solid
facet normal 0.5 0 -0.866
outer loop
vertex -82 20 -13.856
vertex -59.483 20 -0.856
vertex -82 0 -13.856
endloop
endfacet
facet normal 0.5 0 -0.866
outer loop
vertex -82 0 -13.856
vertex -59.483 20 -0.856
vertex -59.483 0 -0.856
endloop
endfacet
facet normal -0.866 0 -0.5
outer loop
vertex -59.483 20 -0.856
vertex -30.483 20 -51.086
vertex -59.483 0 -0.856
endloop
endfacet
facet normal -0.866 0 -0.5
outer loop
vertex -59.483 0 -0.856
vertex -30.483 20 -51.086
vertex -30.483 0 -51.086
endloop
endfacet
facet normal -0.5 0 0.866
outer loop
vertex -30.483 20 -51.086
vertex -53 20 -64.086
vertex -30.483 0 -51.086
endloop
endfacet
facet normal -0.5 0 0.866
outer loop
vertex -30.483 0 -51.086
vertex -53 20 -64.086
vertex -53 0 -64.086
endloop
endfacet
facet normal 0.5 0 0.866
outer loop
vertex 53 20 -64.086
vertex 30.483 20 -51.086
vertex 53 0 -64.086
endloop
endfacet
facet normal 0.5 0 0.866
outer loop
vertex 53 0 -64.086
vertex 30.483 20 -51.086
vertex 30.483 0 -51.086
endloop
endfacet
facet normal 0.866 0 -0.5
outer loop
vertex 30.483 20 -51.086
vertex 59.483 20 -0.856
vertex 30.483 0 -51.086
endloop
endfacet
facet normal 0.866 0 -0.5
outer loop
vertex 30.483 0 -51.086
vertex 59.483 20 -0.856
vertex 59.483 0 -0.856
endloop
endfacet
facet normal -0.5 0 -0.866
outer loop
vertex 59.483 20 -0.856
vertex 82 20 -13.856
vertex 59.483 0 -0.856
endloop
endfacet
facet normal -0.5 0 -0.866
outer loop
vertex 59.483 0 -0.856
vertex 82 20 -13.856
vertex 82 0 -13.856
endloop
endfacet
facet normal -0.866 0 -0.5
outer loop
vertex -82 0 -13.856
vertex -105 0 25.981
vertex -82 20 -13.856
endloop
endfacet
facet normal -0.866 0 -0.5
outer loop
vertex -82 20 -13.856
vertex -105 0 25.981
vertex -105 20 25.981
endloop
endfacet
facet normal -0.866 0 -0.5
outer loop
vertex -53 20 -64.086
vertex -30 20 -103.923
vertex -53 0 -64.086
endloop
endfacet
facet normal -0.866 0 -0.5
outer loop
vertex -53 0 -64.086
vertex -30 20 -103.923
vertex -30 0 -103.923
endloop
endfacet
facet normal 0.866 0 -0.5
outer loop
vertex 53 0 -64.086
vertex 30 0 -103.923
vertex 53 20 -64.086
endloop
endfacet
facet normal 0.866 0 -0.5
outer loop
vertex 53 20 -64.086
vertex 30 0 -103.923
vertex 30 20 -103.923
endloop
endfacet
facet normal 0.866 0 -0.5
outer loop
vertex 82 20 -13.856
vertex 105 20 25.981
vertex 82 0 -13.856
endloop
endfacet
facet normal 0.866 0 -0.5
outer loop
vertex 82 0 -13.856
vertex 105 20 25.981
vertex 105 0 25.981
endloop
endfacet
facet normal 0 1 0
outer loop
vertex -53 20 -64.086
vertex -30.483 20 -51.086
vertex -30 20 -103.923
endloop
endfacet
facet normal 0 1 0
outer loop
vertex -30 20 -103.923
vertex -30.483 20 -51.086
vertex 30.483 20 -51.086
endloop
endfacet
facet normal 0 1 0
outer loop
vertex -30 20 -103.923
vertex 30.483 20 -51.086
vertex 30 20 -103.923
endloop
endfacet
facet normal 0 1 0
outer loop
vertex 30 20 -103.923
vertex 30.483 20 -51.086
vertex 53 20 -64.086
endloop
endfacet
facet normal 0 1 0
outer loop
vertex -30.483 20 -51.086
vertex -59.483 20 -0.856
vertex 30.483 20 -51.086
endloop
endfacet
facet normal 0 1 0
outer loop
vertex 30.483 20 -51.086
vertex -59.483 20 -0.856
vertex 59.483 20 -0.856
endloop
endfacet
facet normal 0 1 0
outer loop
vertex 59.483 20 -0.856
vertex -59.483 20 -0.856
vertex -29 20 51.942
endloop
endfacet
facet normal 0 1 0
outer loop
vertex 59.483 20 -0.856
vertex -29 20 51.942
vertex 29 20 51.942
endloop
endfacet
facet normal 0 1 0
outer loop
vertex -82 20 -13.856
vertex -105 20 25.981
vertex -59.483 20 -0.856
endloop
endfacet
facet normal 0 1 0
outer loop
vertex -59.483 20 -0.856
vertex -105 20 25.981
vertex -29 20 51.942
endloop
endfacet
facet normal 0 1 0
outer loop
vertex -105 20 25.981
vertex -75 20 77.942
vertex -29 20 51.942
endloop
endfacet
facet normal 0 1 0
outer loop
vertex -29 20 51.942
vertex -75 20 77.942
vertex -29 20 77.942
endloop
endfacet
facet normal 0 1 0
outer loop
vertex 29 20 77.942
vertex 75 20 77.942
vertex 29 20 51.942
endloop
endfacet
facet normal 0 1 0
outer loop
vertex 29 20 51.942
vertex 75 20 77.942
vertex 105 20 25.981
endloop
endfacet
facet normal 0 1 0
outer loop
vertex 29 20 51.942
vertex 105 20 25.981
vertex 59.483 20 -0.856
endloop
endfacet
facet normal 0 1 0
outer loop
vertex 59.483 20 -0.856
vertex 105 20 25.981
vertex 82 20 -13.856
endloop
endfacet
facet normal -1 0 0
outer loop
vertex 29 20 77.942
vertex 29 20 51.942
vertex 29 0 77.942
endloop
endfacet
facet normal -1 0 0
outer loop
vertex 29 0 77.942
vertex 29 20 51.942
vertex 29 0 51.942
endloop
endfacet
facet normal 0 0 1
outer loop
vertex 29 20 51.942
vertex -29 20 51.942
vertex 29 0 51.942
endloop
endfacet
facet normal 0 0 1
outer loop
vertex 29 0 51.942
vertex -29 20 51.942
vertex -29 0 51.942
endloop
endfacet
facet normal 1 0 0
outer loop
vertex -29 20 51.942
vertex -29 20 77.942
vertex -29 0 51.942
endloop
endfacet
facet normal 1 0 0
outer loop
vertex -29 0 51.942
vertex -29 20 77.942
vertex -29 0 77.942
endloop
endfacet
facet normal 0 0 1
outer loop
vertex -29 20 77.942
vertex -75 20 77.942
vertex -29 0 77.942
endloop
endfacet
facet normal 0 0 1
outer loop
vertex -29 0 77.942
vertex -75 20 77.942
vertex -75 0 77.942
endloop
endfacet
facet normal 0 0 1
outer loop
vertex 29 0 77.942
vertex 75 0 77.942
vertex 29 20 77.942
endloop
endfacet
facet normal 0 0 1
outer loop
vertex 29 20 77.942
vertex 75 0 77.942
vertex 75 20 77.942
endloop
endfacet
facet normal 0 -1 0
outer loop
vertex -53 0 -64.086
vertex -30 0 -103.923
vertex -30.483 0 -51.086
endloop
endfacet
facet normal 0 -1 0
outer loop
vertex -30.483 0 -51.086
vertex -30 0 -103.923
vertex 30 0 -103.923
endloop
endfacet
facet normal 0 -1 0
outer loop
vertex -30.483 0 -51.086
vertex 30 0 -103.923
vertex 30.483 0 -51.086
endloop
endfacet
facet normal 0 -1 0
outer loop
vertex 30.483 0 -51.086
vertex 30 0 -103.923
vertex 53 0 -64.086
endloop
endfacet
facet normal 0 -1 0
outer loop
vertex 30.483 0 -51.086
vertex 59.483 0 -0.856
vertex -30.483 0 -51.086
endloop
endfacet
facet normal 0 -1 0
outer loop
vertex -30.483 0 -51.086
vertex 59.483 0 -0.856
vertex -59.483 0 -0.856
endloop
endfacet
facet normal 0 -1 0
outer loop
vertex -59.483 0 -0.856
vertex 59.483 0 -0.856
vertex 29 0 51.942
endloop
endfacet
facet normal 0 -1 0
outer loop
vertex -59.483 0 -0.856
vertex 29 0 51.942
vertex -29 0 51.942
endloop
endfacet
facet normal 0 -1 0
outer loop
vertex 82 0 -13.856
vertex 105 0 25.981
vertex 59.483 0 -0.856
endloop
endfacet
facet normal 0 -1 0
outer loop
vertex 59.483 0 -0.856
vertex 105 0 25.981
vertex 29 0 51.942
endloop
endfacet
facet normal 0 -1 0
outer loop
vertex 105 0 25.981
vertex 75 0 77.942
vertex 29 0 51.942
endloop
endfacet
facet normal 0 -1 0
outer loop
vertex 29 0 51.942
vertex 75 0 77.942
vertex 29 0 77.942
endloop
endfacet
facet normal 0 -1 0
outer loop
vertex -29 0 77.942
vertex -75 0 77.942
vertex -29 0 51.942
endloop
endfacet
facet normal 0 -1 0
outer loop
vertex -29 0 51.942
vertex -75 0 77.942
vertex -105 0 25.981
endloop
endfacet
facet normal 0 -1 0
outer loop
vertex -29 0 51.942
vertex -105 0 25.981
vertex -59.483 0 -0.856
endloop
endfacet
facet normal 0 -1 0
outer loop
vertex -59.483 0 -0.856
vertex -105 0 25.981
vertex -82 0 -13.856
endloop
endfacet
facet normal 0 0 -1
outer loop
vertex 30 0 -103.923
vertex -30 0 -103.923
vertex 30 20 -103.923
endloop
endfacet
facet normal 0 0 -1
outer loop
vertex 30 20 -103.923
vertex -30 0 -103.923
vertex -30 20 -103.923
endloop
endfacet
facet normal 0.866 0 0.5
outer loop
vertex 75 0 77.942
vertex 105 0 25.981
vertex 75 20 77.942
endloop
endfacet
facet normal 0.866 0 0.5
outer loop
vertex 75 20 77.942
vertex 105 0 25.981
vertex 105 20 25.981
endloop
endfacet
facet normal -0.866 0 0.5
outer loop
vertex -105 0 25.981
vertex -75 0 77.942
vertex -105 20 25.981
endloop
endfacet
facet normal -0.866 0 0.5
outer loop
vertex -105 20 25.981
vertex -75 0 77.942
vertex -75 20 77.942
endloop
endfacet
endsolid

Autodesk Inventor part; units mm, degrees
ref_plane "YZ Plane" through (0, 0, 0) normal (1, 0, 0) x (0, 1, 0)
ref_plane "XZ Plane" through (0, 0, 0) normal (0, 1, 0) x (-1, 0, 0)
ref_plane "XY Plane" through (0, 0, 0) normal (0, 0, 1) x (1, 0, 0)
sketch "スケッチ1" plane through (0, 0, 0) normal (0, 1, 0) x (-1, 0, 0)
  line L0 (135, 77.9423) -> (-135, 77.9423)
  line L1 (-135, 77.9423) -> (0, -155.8846)
  line L2 (0, -155.8846) -> (135, 77.9423)
  line L3 (135, 77.9423) -> (-67.5, -38.9711) construction
  line L4 (75, 77.9423) -> (105, 25.9808)
  line L5 (-105, 25.9808) -> (-75, 77.9423)
  line L6 (30, -103.923) -> (-30, -103.923)
  line L7 (77.8868, 82.9423) -> (0, 82.9423)
  line L8 (77.8868, 82.9423) -> (94.3301, 54.4615)
  line L9 (0, 0) -> (0, 82.9423) construction
  line L10 (-77.8868, 82.9423) -> (0, 82.9423)
  line L11 (-77.8868, 82.9423) -> (-94.3301, 54.4615)
  line L12 (-110.7735, 25.9808) -> (-94.3301, 54.4615)
  line L13 (-110.7735, 25.9808) -> (-71.8301, -41.4711)
  line L14 (-32.8868, -108.923) -> (-71.8301, -41.4711)
  line L15 (-32.8868, -108.923) -> (0, -108.923)
  line L16 (32.8868, -108.923) -> (0, -108.923)
  line L17 (32.8868, -108.923) -> (71.8301, -41.4711)
  line L18 (110.7735, 25.9808) -> (71.8301, -41.4711)
  line L19 (110.7735, 25.9808) -> (94.3301, 54.4615)
  line L20 (30, -108.923) -> (30, -103.923)
  line L21 (-30, -108.923) -> (-30, -103.923)
  line L22 (-30, -103.923) -> (30, -103.923)
  dimension "d0" = 270
  dimension "d1" = 60
  dimension "d4" = 360
  dimension "d6" = 5
  dimension "d7" = 5
  dimension "d10" = 360
extrude "押し出し2" add sketch "スケッチ1" along normal blind 20 contours L4 L2 L6 L1 L5 L0
sketch "スケッチ2" plane through (0, 20, 0) normal (0, 1, 0) x (1, 0, 0)
  line L0 (-75, -77.9423) -> (75, -77.9423) projected
  line L1 (-29, -77.9423) -> (29, -77.9423)
  line L2 (29, -77.9423) -> (29, -51.9423)
  line L3 (29, -51.9423) -> (-29, -51.9423)
  line L4 (-29, -51.9423) -> (-29, -77.9423)
  point P0 (0, 0)
  point P1 (0, -51.9423)
  point P2 (0, -77.9423)
  dimension "d16" = 26
  dimension "d17" = 58
extrude "押し出し3" cut sketch "スケッチ2" against normal blind 20
pattern_circular "円形状パターン1" count 3 over 360 about axis through (0, -10, 0) along (0, 1, 0) of "押し出し3"
properties part number "base_flame"
